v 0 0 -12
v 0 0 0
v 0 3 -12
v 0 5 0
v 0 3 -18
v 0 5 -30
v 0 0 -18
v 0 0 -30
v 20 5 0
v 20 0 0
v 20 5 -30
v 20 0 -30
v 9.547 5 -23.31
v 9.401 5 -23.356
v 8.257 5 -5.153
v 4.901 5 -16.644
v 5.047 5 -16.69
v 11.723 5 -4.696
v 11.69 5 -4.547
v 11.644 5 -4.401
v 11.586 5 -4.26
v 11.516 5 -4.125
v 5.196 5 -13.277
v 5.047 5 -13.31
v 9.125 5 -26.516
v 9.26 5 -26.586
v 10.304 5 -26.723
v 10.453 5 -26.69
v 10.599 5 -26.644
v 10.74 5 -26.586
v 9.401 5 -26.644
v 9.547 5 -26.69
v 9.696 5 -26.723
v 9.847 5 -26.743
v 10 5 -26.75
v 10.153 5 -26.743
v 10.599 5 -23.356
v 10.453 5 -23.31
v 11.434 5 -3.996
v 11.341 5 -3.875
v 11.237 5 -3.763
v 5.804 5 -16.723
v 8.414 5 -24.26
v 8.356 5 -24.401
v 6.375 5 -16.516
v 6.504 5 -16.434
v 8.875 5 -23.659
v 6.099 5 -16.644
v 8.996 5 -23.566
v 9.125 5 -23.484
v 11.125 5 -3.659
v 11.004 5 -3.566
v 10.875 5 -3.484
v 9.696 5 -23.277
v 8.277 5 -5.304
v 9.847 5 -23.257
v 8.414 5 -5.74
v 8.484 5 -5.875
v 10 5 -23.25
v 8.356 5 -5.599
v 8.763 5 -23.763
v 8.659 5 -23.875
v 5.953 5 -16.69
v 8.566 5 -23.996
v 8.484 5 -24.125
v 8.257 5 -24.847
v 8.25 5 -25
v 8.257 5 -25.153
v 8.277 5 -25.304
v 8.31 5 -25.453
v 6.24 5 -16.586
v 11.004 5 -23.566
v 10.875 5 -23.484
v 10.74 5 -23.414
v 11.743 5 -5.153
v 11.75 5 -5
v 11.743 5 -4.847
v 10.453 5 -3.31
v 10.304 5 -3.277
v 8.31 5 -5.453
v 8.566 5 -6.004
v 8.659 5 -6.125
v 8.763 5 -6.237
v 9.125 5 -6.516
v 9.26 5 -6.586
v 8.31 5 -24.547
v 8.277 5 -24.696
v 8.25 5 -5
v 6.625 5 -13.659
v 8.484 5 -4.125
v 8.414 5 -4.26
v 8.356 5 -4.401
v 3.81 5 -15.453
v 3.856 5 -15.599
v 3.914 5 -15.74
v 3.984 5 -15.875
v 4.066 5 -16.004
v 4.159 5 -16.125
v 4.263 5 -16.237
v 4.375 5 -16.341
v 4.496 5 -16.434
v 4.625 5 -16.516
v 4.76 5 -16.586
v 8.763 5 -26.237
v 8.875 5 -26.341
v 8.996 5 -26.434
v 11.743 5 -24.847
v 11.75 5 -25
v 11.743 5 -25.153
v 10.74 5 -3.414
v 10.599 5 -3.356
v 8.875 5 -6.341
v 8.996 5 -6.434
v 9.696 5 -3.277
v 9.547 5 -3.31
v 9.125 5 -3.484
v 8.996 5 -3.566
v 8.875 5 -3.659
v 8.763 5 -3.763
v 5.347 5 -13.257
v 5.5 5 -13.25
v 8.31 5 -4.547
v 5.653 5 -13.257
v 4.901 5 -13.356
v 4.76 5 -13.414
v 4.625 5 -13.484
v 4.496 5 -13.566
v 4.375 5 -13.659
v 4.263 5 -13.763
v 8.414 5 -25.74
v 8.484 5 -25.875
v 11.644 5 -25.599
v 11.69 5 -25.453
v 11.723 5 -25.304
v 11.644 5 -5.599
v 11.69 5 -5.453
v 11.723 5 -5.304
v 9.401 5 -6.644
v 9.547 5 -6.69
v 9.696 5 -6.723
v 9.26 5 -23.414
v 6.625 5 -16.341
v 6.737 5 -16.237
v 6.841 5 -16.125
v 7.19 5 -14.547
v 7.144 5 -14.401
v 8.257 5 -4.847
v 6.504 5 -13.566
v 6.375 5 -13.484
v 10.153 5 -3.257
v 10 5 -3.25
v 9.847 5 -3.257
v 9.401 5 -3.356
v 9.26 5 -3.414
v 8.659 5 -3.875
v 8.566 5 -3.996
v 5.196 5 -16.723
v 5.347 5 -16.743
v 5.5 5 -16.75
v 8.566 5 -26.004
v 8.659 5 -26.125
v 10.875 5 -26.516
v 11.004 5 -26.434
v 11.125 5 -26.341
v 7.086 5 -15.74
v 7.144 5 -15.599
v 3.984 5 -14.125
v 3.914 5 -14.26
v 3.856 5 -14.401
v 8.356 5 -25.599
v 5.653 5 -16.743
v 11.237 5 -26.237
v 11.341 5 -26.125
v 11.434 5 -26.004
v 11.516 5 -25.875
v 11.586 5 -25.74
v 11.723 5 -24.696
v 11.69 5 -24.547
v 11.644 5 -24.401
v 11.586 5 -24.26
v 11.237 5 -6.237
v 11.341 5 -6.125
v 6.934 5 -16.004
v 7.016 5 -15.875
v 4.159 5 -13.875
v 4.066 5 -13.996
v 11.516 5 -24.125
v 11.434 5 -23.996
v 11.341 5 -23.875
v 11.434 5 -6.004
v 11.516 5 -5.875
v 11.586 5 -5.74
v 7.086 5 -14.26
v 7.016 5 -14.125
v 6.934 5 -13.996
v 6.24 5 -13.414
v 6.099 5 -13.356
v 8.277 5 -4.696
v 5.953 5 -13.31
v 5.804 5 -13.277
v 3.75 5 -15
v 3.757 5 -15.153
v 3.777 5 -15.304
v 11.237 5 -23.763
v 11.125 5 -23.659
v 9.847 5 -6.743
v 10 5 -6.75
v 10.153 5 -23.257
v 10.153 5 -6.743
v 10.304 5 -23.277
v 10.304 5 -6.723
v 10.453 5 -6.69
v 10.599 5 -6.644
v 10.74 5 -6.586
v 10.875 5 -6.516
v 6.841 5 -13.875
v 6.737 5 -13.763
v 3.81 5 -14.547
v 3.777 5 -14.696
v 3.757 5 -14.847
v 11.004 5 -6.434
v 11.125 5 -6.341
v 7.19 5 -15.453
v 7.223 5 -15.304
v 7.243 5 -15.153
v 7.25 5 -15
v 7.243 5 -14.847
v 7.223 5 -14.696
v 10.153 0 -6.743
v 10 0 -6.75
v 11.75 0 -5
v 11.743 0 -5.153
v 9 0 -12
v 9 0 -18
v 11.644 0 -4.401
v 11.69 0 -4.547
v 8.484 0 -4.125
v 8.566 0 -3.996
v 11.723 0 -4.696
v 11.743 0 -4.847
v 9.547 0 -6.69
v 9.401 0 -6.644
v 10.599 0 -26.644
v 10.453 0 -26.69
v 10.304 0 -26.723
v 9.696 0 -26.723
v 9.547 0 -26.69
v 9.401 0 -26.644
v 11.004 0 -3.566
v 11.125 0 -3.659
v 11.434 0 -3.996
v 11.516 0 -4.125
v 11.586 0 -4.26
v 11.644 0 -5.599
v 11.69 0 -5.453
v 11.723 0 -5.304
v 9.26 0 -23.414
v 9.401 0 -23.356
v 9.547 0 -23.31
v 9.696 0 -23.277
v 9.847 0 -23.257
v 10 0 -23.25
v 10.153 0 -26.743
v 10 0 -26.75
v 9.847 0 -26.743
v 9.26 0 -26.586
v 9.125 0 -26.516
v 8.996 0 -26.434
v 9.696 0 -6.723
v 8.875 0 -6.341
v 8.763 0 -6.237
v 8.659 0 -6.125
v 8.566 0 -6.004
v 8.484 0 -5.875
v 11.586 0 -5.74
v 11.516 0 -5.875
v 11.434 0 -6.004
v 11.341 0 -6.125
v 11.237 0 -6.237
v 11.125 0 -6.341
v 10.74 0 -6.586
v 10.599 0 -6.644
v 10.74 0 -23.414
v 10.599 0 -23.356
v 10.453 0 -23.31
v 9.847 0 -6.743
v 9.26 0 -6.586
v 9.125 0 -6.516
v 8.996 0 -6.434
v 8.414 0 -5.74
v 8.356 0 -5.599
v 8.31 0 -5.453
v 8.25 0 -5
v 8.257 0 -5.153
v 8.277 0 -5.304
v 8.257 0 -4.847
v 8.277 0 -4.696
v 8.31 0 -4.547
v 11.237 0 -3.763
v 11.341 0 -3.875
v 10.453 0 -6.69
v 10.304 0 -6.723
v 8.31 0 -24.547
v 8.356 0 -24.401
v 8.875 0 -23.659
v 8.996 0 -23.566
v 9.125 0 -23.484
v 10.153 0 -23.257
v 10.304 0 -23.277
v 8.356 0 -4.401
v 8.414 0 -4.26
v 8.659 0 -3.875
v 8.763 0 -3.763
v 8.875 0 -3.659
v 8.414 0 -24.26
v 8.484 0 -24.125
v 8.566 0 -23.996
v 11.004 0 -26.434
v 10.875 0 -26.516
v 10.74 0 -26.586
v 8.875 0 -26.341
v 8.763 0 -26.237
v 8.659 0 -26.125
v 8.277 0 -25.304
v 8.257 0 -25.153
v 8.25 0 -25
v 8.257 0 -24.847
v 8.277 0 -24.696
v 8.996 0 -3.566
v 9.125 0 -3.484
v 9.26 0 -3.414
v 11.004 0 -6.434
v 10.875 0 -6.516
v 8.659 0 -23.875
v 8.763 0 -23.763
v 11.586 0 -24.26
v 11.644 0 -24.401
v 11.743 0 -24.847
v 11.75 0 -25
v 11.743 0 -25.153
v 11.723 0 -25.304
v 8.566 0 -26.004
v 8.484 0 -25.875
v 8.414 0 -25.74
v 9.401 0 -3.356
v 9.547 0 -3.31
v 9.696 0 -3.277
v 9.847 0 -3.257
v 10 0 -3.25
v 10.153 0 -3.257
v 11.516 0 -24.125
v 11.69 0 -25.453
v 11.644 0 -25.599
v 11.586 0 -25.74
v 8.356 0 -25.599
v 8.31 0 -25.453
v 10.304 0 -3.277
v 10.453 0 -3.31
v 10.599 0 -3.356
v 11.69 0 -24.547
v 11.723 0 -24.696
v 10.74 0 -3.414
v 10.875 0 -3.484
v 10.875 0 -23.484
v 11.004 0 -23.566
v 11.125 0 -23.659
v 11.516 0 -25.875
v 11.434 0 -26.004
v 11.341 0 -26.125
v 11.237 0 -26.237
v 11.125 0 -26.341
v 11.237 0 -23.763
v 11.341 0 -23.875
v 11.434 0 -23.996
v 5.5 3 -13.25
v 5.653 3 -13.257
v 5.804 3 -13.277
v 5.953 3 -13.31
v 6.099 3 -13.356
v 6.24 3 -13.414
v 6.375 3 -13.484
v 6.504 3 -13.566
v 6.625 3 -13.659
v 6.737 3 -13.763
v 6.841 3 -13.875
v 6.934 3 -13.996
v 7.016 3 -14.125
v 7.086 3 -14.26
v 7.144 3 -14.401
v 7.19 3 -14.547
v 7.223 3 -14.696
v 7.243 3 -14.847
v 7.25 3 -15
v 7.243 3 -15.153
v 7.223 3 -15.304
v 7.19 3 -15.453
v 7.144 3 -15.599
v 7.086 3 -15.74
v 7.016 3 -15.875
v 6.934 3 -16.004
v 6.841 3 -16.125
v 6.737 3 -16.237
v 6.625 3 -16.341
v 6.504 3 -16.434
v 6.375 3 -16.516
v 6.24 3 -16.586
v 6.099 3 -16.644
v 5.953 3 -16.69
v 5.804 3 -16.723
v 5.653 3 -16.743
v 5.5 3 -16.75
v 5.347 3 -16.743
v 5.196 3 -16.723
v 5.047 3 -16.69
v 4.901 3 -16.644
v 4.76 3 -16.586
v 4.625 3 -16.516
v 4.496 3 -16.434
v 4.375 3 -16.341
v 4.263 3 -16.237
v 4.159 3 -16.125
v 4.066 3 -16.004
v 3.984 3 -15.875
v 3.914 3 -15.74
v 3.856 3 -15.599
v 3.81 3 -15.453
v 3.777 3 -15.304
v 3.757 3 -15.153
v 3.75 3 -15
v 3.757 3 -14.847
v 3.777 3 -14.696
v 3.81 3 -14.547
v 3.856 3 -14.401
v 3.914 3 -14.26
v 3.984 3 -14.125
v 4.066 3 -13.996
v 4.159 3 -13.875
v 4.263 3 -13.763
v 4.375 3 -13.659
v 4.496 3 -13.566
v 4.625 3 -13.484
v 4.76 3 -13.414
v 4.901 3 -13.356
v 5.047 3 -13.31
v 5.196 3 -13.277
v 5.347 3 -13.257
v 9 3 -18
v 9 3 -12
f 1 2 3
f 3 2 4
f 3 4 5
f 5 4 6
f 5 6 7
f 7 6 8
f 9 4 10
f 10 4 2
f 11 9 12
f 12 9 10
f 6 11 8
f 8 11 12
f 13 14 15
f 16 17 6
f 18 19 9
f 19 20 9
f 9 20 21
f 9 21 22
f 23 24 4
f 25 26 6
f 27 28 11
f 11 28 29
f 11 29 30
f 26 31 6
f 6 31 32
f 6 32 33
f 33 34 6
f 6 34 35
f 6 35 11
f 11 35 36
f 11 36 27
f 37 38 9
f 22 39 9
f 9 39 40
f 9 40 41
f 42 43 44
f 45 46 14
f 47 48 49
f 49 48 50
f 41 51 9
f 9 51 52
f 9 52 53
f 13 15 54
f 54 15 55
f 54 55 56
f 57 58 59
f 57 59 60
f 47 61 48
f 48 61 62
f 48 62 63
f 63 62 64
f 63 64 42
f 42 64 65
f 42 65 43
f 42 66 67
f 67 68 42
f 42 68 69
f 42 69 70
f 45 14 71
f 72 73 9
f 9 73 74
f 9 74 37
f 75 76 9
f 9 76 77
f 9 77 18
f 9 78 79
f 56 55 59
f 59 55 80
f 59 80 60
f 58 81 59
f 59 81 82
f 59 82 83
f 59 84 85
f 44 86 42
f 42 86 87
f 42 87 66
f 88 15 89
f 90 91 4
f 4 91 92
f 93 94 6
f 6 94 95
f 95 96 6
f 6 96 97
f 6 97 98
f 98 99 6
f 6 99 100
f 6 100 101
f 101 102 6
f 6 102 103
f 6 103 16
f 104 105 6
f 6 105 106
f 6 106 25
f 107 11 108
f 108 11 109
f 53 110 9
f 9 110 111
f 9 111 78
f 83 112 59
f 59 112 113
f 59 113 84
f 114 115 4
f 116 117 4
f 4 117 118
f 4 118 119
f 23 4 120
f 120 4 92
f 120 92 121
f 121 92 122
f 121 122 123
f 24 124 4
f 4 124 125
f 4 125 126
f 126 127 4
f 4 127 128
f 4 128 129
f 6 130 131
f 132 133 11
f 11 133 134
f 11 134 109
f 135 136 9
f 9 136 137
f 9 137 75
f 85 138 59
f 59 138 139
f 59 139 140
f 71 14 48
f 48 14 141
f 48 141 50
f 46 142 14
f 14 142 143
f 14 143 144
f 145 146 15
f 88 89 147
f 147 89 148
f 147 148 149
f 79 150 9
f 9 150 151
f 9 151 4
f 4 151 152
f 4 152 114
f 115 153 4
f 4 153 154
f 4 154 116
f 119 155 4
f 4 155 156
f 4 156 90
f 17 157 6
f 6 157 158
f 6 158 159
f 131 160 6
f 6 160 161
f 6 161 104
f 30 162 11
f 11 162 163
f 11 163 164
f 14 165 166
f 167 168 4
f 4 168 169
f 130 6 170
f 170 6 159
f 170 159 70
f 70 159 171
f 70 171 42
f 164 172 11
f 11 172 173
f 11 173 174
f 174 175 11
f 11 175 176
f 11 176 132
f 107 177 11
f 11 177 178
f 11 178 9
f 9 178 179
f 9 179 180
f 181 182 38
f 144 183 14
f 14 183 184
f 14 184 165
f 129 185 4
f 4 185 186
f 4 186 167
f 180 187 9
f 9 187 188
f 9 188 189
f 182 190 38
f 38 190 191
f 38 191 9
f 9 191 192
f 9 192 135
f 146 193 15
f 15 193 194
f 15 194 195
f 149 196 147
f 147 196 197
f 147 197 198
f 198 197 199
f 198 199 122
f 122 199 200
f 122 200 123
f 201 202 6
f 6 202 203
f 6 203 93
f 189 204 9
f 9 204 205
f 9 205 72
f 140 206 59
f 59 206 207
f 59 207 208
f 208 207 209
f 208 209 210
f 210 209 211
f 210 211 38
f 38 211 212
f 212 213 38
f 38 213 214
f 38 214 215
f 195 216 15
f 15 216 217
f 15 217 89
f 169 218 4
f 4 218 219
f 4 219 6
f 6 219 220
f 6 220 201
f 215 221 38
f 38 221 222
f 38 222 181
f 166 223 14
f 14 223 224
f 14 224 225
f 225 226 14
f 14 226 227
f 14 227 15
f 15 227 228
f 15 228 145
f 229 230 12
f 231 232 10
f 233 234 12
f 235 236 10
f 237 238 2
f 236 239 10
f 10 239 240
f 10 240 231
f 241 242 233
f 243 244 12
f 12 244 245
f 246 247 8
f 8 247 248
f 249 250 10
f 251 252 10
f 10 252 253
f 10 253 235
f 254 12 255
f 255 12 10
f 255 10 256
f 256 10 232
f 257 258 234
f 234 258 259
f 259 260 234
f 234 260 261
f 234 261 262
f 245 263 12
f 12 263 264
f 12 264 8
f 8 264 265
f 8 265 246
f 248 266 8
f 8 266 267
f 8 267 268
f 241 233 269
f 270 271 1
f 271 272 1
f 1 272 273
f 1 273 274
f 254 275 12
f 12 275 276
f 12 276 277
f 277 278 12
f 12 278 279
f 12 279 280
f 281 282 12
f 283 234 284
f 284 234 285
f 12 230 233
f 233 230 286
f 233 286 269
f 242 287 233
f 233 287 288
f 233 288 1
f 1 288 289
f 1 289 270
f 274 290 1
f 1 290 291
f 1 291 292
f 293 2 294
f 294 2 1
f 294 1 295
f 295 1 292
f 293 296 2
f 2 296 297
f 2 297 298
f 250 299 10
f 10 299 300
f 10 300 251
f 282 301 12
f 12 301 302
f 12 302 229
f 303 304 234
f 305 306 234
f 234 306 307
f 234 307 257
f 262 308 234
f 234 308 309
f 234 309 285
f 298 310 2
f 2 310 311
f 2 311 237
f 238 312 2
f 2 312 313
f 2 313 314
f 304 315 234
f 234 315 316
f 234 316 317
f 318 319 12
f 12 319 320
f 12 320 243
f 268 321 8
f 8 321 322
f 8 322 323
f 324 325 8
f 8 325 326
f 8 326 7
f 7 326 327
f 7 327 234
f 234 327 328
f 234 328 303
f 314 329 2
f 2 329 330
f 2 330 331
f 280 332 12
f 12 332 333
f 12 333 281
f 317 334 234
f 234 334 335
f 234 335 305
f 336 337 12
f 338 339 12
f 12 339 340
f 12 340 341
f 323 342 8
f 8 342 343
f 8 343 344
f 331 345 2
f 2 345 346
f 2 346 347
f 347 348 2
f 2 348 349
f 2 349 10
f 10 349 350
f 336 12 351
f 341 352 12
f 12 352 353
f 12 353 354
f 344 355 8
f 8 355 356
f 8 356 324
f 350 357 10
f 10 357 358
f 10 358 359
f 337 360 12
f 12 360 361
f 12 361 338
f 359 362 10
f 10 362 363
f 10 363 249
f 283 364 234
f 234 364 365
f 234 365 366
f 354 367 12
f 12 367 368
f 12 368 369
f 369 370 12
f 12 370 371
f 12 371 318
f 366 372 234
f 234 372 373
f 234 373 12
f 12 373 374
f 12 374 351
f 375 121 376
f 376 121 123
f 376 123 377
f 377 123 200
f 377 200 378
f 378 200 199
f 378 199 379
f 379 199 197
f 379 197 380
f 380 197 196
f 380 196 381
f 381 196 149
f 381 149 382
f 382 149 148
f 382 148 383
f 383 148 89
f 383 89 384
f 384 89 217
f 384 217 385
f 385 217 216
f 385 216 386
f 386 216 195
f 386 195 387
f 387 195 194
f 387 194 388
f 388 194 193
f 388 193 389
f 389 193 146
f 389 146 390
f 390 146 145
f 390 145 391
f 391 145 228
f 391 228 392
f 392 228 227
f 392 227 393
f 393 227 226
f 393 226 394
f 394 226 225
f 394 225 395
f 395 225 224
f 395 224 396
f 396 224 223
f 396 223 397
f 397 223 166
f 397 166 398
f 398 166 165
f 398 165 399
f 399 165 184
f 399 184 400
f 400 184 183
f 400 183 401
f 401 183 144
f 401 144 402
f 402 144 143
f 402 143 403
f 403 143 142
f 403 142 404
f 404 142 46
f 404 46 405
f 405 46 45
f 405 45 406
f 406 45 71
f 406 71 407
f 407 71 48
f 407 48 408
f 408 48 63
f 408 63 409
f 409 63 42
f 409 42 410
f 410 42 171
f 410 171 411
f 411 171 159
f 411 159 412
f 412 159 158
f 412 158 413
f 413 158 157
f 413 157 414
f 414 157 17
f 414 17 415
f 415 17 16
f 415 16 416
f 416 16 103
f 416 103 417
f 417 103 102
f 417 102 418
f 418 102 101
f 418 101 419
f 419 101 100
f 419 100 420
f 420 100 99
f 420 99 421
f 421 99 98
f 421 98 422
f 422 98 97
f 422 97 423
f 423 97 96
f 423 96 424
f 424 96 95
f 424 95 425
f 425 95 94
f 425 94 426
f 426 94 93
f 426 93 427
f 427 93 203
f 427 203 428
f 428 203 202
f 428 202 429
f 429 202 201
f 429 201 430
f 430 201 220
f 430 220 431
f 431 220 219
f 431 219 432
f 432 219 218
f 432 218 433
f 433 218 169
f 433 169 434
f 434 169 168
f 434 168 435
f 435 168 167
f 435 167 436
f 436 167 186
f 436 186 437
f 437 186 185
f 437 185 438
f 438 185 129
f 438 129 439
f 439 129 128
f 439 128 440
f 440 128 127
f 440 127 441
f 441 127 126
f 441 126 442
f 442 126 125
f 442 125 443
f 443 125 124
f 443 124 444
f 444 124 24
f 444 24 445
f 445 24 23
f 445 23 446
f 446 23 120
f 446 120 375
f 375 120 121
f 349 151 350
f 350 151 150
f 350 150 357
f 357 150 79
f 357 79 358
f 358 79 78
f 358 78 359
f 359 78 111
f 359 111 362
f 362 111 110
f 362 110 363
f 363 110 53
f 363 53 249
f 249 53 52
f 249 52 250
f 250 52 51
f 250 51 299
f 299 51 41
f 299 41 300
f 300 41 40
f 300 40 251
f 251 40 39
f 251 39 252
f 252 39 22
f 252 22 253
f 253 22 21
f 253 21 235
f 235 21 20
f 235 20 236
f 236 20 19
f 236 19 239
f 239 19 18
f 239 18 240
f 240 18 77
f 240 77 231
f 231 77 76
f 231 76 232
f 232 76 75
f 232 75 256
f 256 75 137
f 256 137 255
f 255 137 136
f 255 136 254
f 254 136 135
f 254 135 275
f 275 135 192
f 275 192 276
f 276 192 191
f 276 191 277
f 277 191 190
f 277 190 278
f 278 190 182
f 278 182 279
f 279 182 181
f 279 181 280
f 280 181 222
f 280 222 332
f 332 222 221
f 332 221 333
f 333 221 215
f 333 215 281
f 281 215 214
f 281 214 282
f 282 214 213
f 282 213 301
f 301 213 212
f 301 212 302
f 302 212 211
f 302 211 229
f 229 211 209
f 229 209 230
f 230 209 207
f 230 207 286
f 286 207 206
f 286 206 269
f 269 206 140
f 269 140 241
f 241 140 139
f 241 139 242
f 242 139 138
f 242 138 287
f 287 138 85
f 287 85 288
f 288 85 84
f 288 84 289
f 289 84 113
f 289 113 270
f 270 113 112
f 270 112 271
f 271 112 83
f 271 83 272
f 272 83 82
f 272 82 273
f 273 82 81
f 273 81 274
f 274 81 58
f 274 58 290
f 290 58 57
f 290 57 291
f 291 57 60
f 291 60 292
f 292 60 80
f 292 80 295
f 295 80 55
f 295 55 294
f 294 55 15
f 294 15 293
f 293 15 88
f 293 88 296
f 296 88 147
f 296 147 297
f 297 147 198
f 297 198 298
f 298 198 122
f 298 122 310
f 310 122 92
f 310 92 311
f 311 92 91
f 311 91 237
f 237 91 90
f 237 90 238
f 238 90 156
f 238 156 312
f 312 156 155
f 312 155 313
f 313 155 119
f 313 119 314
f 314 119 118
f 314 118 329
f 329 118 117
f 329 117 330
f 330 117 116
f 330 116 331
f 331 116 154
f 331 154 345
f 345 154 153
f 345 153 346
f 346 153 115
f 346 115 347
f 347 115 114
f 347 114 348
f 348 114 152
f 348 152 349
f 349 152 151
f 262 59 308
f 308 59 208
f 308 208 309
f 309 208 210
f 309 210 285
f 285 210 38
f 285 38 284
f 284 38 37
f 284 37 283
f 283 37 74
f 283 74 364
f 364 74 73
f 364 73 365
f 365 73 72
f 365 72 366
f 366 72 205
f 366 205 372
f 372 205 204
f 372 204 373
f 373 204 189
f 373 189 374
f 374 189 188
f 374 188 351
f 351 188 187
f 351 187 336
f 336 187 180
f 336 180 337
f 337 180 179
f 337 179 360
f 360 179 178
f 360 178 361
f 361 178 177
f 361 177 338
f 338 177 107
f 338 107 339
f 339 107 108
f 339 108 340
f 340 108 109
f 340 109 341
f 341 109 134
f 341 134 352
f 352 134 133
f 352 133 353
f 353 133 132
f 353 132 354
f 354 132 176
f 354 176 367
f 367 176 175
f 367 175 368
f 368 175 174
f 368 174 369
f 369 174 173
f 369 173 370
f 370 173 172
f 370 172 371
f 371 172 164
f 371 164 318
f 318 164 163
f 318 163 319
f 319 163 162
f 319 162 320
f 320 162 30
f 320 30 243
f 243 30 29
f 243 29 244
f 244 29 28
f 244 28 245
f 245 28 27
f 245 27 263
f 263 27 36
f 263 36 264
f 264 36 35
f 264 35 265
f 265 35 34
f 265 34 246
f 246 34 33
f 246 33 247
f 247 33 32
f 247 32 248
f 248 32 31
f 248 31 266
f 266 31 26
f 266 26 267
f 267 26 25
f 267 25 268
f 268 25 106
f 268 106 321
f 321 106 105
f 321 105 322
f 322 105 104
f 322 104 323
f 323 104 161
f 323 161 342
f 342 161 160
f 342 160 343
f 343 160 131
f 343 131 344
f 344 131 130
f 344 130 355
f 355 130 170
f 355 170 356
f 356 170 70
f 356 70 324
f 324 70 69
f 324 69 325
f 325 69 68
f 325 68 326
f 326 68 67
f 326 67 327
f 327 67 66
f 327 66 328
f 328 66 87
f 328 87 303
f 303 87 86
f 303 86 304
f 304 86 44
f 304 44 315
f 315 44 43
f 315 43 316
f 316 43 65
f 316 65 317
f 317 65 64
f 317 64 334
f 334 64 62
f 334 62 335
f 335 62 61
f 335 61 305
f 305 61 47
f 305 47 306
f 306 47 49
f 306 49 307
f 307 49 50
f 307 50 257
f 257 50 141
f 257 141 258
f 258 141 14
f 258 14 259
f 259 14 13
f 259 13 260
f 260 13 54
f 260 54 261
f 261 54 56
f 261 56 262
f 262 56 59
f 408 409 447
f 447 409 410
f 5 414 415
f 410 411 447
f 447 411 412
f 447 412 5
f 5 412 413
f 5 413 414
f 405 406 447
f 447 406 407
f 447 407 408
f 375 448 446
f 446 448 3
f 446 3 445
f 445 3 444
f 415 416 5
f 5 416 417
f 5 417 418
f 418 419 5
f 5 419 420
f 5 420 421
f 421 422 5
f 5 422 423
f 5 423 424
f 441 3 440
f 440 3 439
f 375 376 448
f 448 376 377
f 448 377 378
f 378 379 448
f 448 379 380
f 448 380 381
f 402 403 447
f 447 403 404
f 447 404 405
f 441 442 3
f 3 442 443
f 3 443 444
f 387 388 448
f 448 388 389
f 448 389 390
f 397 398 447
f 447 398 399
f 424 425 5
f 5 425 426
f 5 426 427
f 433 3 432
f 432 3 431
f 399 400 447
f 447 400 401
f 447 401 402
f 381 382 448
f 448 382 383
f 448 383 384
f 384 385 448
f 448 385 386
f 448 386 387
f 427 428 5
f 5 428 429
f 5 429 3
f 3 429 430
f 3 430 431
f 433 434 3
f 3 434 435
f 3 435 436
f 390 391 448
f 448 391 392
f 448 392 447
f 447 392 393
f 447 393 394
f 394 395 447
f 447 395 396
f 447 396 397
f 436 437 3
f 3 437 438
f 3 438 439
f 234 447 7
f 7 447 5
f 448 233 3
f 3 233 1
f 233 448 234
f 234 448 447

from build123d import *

# Parameters (mm, degrees)
SKETCH1_W           = 20
SKETCH1_H           = 30
BOSS_EXTRUDE1_DEPTH = 5
SKETCH2_R           = 1.75
CUT_EXTRUDE1_DEPTH  = 8
SKETCH3_R           = 1.75
CUT_EXTRUDE2_DEPTH  = 37.400549446
SKETCH4_W           = 6
SKETCH4_H           = 3
CUT_EXTRUDE3_DEPTH  = 9


with BuildPart() as part:
    # Sketch1 → Boss-Extrude1 (new body)
    with BuildSketch(Plane(origin=(0, 0, 0), x_dir=(1, 0, 0), z_dir=(0, 1, 0))):
        with Locations((10, 15)):
            Rectangle(SKETCH1_W, SKETCH1_H)
    extrude(amount=BOSS_EXTRUDE1_DEPTH)

    # Sketch2 → Cut-Extrude1 (cut)
    with BuildSketch(Plane(origin=(0, 5, 0), x_dir=(1, 0, 0), z_dir=(0, 1, 0))):
        with Locations(Location((5.5, 15, 0), (0, 0, 270))):
            Circle(SKETCH2_R)
    extrude(amount=-CUT_EXTRUDE1_DEPTH, mode=Mode.SUBTRACT)

    # Sketch3 → Cut-Extrude2 (cut, through all)
    with BuildSketch(Plane(origin=(0, 5, 0), x_dir=(1, 0, 0), z_dir=(0, 1, 0))):
        with Locations(Location((10, 25, 0), (0, 0, 270))):
            Circle(SKETCH3_R)
        with Locations(Location((10, 5, 0), (0, 0, 270))):
            Circle(SKETCH3_R)
    extrude(amount=-CUT_EXTRUDE2_DEPTH, mode=Mode.SUBTRACT)

    # Sketch4 → Cut-Extrude3 (cut)
    with BuildSketch(Plane.ZY):
        with Locations((-15, 1.5)):
            Rectangle(SKETCH4_W, SKETCH4_H)
    extrude(amount=-CUT_EXTRUDE3_DEPTH, mode=Mode.SUBTRACT)


solid = part.part
